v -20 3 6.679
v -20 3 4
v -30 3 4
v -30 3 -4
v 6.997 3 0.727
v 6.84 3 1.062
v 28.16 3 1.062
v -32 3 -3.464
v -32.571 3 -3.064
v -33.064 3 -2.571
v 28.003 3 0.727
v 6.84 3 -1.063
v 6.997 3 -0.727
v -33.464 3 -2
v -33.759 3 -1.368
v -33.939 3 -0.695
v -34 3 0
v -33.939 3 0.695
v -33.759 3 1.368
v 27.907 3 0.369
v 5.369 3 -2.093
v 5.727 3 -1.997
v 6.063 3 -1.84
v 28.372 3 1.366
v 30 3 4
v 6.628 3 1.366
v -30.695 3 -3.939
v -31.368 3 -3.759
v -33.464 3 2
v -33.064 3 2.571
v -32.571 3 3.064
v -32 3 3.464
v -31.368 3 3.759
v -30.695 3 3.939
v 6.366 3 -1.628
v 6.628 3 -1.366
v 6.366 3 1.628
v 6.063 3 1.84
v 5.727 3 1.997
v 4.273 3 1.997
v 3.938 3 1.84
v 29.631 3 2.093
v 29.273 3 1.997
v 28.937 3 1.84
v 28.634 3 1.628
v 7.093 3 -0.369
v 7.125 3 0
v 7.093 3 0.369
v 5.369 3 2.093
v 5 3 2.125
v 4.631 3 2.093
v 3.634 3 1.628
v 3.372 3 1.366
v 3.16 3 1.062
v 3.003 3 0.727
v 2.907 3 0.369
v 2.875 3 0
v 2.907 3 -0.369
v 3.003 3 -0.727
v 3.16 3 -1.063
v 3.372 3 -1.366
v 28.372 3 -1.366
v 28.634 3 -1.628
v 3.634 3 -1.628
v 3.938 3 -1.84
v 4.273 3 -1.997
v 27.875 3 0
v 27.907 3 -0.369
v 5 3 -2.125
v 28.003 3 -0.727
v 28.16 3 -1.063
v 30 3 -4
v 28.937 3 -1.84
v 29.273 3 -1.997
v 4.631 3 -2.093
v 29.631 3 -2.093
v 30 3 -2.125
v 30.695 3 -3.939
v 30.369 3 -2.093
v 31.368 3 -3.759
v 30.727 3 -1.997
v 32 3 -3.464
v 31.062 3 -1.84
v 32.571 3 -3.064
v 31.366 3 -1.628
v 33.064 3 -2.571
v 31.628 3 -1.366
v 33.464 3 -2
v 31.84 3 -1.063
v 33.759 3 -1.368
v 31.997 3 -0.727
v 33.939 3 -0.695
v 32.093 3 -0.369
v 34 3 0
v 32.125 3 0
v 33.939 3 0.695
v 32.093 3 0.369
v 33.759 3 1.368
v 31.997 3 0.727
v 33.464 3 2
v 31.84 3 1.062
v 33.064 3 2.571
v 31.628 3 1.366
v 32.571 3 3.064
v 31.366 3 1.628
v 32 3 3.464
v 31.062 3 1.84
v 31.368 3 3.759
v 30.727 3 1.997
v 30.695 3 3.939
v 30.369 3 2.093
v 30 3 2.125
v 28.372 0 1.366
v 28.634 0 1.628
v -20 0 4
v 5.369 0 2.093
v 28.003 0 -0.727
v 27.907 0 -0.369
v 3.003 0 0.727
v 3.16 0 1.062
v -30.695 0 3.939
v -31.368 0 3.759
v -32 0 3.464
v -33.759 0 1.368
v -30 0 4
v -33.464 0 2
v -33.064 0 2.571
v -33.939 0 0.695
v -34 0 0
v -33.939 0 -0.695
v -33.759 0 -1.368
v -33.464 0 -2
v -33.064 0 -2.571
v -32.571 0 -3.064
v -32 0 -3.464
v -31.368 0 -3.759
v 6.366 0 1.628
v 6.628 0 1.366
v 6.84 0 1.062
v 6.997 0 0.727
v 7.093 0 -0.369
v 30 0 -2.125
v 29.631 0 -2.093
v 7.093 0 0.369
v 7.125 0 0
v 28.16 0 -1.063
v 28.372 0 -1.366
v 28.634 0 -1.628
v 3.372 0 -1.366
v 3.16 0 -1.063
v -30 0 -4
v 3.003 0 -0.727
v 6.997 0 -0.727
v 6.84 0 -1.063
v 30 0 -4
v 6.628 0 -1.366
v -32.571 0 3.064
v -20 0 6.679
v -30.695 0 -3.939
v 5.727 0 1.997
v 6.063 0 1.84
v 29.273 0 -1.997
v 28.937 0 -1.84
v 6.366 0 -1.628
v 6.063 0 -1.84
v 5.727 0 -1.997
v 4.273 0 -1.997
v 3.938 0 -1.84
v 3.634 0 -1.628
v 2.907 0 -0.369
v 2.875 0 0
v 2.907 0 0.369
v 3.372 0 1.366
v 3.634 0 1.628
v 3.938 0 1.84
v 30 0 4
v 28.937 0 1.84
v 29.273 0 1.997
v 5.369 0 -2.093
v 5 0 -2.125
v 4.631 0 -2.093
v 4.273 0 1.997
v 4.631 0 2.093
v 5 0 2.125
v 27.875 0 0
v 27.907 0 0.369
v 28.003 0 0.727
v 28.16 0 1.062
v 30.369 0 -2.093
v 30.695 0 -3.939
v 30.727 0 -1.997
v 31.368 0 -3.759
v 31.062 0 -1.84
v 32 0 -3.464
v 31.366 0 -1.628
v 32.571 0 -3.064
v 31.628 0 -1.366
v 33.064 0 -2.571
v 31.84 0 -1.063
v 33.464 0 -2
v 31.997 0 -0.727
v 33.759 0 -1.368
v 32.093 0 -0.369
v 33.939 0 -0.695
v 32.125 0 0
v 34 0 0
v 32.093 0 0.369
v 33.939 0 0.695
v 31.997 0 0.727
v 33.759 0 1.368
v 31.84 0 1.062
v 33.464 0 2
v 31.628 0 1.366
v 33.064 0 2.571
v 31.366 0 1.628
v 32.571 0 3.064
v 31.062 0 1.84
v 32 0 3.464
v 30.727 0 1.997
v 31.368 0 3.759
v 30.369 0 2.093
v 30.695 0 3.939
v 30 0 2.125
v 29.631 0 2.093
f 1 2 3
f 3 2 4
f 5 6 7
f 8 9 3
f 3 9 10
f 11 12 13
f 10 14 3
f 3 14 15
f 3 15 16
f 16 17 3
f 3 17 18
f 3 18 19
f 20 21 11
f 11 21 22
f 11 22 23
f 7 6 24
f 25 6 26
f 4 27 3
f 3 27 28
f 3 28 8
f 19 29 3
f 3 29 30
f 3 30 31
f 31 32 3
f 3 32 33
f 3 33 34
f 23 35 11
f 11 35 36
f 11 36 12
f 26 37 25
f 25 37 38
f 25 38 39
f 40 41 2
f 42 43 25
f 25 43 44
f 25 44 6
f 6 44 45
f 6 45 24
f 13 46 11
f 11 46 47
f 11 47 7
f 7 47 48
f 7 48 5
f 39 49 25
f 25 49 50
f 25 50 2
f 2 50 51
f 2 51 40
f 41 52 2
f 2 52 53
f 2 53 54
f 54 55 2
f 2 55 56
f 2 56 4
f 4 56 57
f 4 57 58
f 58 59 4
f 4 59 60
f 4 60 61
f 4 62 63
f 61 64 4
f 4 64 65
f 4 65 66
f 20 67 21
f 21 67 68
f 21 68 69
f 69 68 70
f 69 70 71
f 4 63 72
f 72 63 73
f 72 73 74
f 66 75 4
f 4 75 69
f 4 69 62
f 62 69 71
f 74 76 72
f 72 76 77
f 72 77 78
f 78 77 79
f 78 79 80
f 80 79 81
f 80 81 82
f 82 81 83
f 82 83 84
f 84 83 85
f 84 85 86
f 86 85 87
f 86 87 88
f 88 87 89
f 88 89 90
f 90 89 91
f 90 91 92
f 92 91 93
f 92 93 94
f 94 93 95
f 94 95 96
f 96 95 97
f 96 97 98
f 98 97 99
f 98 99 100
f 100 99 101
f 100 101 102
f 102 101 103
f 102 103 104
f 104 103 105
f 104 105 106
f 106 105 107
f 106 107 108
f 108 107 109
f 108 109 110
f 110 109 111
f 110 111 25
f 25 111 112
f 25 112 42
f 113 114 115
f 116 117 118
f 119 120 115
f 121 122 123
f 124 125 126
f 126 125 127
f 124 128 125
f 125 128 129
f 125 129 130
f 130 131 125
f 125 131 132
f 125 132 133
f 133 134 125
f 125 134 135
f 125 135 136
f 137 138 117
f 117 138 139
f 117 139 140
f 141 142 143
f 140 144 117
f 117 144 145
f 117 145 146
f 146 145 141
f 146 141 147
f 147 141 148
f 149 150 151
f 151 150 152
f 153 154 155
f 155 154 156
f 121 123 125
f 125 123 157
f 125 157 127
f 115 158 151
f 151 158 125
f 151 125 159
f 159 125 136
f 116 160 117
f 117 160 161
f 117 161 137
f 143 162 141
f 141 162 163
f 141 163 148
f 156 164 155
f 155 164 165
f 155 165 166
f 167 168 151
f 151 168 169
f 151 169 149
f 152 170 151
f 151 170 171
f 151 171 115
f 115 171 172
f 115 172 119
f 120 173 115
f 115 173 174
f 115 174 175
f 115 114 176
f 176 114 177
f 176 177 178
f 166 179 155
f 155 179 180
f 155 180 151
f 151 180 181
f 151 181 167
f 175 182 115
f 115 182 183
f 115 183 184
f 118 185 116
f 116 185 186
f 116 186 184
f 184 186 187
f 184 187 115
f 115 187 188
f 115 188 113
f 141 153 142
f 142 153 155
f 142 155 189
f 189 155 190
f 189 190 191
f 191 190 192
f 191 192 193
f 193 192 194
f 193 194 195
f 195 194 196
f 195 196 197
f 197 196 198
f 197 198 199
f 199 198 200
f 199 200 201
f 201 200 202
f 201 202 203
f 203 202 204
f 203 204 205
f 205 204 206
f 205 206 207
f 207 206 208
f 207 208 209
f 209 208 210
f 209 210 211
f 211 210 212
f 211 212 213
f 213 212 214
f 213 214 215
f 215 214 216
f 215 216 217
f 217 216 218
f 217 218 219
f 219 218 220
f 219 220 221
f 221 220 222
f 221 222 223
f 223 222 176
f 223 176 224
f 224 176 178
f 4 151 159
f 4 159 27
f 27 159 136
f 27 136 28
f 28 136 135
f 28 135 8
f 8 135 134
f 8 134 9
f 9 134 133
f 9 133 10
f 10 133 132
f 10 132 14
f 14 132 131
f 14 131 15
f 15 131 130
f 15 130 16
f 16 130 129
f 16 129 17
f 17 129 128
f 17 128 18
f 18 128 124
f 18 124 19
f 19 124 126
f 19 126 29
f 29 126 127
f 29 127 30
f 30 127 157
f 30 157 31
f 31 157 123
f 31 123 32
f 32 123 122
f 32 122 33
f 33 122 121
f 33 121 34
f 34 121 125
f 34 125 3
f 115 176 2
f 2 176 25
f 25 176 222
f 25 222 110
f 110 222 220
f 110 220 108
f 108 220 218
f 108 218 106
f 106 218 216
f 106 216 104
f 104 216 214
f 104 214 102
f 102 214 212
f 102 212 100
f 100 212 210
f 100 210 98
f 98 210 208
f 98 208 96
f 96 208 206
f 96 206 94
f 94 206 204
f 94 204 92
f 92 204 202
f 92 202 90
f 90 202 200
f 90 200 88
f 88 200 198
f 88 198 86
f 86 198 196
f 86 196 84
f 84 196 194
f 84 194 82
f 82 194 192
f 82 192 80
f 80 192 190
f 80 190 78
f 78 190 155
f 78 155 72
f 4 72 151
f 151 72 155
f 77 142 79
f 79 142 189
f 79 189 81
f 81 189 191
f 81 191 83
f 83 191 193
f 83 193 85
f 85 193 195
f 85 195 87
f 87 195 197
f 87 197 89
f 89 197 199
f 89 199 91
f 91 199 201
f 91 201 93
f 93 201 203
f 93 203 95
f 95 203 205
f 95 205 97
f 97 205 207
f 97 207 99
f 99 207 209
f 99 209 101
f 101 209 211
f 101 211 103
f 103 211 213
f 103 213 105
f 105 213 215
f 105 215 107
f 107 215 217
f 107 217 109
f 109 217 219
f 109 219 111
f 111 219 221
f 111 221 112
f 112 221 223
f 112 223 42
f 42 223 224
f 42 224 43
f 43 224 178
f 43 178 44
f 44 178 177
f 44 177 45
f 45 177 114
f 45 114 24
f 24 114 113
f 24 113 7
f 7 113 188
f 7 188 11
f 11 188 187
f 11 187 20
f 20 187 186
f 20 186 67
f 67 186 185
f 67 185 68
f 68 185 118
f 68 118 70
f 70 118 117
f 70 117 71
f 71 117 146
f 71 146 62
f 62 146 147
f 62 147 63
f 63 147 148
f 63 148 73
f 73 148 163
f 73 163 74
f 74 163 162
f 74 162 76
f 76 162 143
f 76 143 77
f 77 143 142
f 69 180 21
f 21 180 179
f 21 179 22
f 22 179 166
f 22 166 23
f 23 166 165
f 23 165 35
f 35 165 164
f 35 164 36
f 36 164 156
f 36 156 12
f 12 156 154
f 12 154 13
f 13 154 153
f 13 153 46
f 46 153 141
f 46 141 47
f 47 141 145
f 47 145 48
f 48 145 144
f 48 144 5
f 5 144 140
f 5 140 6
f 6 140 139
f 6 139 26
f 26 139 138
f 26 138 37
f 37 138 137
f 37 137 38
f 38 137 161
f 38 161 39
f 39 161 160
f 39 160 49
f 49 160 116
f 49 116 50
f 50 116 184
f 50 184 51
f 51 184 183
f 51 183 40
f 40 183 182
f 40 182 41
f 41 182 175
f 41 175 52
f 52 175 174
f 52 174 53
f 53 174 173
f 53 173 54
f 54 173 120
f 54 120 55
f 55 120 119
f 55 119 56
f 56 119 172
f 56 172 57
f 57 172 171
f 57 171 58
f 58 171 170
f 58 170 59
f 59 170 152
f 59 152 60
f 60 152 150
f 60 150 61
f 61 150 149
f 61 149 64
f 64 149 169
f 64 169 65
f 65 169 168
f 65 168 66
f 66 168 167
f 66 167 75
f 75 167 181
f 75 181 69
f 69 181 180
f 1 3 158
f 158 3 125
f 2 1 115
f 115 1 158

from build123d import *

# Parameters (mm, degrees)
SKETCH1_R           = 2.125
BOSS_EXTRUDE1_DEPTH = 3
BOSS_EXTRUDE2_DEPTH = 3


with BuildPart() as part:
    # Sketch1 → Boss-Extrude1 (new body)
    with BuildSketch(Plane(origin=(0, 0, 0), x_dir=(1, 0, 0), z_dir=(0, 1, 0))):
        with BuildLine():
            Line((-30, 4), (30, 4))
            ThreePointArc((30, 4), (34, 0), (30, -4))
            Line((30, -4), (-30, -4))
            ThreePointArc((-30, -4), (-34, 0), (-30, 4))
        make_face()
        with Locations(Location((30, 0, 0), (0, 0, 270))):
            Circle(SKETCH1_R, mode=Mode.SUBTRACT)
        with Locations(Location((5, 0, 0), (0, 0, 270))):
            Circle(SKETCH1_R, mode=Mode.SUBTRACT)
    extrude(amount=BOSS_EXTRUDE1_DEPTH)

    # Sketch3 → Boss-Extrude2 (add)
    with BuildSketch(Plane.XZ):
        Polygon((-30, 4), (-20, 6.679491924), (-20, 4), align=None)
    extrude(amount=-BOSS_EXTRUDE2_DEPTH)


solid = part.part
